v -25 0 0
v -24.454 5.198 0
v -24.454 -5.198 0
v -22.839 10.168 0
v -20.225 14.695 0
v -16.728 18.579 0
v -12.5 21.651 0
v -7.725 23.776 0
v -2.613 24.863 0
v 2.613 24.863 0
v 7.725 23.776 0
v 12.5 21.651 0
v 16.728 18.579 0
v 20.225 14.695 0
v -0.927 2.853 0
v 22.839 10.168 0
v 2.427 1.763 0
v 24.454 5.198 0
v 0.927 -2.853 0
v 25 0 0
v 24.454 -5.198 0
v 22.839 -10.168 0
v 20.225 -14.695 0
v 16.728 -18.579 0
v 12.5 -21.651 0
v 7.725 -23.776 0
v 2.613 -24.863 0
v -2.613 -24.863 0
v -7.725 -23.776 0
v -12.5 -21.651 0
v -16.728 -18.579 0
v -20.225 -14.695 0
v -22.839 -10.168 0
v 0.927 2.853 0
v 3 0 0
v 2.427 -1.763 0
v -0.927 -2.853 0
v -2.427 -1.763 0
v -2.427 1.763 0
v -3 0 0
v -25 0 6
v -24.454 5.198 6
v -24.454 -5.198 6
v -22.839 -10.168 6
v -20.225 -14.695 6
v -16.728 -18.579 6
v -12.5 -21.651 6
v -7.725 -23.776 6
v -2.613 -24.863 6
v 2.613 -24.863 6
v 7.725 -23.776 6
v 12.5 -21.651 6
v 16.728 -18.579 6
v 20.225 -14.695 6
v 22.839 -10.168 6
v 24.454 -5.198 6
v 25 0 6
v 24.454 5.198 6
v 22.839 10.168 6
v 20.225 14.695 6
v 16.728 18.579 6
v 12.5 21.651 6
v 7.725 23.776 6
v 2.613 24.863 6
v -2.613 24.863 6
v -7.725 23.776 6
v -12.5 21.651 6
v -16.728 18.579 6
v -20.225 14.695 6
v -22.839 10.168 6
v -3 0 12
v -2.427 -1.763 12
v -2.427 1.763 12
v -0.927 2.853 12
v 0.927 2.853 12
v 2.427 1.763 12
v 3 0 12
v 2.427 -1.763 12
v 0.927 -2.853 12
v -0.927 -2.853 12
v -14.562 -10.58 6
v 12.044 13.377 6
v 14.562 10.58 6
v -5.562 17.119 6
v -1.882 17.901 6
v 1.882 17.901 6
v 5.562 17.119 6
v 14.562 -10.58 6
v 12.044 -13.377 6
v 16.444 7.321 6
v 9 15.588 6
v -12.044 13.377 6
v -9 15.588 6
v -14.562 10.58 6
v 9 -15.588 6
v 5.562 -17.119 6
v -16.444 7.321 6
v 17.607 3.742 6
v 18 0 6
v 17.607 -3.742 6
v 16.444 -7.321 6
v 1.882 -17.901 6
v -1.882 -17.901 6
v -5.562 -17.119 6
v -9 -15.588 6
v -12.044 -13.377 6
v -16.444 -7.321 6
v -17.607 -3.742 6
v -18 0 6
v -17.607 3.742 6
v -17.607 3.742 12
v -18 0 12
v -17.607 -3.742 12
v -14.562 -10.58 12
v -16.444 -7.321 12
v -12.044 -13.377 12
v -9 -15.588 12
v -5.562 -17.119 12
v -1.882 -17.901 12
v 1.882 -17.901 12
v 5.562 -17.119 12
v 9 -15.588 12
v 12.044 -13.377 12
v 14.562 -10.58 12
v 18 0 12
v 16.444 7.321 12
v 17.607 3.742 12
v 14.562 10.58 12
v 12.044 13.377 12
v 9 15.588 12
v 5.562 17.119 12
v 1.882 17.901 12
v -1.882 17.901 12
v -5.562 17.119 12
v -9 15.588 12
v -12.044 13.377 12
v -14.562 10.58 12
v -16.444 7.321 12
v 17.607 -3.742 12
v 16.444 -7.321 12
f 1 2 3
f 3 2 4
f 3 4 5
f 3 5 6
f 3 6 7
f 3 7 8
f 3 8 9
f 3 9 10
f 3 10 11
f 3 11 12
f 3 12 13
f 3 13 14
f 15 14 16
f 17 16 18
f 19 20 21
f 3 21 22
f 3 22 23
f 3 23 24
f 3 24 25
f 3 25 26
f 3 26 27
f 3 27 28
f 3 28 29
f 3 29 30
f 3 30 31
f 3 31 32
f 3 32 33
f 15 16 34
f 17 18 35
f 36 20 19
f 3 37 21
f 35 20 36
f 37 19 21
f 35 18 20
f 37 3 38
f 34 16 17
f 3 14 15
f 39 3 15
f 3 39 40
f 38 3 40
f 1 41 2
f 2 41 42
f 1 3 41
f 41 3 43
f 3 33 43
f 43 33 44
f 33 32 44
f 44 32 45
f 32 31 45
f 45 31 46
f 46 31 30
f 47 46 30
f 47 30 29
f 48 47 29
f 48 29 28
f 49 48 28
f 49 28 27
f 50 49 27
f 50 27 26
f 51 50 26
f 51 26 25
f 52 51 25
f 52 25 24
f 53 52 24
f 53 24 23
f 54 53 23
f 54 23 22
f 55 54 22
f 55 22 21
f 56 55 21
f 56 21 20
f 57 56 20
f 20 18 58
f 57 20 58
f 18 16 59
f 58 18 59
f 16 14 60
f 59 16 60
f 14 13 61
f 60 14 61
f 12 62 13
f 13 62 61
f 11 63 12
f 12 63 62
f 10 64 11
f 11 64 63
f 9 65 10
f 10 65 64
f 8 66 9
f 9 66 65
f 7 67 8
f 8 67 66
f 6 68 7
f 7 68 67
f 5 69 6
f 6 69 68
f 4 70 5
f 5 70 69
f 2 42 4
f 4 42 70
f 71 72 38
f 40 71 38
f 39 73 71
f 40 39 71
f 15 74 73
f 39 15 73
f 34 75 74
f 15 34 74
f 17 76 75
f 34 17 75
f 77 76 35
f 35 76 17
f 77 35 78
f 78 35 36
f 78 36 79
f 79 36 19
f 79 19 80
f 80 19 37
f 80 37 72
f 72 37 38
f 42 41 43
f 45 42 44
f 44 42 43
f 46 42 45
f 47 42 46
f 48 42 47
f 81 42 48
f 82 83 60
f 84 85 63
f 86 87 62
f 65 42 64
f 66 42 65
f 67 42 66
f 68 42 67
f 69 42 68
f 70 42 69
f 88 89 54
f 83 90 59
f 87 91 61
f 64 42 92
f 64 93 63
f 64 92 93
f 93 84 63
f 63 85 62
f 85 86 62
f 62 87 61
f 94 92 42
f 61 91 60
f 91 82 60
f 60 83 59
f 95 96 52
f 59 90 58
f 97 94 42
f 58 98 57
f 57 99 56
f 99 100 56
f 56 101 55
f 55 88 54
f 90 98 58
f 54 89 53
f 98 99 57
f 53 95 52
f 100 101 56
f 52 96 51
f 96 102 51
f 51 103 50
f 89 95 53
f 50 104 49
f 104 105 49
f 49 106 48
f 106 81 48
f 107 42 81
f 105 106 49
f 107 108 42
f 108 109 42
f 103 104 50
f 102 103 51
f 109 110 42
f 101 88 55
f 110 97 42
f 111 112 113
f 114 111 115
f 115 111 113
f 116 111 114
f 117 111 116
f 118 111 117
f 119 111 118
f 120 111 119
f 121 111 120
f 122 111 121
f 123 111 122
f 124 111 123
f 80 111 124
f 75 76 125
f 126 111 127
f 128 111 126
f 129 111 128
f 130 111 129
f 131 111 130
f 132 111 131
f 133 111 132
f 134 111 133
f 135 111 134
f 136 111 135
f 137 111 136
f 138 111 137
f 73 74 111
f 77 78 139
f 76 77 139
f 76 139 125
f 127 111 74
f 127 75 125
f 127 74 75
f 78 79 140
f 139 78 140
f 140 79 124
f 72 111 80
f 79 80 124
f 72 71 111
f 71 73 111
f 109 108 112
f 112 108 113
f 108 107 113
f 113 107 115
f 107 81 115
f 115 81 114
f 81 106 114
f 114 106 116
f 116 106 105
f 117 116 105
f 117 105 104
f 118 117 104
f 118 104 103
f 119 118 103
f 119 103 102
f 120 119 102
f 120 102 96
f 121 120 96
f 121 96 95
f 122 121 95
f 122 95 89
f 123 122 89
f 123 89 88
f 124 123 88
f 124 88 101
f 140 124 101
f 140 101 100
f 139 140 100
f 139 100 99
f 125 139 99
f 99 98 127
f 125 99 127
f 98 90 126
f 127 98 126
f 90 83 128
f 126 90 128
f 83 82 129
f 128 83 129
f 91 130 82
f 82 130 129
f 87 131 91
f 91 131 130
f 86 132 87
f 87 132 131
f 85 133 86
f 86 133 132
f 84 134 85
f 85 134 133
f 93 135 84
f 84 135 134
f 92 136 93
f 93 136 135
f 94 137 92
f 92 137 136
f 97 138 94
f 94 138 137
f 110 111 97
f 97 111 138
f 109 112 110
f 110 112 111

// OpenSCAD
difference() {
	union() {
		cylinder(6, r=25);
		translate([0,0,6]) {
			cylinder(6, r=18);
		}
	}
	cylinder(12, r=3);
}
